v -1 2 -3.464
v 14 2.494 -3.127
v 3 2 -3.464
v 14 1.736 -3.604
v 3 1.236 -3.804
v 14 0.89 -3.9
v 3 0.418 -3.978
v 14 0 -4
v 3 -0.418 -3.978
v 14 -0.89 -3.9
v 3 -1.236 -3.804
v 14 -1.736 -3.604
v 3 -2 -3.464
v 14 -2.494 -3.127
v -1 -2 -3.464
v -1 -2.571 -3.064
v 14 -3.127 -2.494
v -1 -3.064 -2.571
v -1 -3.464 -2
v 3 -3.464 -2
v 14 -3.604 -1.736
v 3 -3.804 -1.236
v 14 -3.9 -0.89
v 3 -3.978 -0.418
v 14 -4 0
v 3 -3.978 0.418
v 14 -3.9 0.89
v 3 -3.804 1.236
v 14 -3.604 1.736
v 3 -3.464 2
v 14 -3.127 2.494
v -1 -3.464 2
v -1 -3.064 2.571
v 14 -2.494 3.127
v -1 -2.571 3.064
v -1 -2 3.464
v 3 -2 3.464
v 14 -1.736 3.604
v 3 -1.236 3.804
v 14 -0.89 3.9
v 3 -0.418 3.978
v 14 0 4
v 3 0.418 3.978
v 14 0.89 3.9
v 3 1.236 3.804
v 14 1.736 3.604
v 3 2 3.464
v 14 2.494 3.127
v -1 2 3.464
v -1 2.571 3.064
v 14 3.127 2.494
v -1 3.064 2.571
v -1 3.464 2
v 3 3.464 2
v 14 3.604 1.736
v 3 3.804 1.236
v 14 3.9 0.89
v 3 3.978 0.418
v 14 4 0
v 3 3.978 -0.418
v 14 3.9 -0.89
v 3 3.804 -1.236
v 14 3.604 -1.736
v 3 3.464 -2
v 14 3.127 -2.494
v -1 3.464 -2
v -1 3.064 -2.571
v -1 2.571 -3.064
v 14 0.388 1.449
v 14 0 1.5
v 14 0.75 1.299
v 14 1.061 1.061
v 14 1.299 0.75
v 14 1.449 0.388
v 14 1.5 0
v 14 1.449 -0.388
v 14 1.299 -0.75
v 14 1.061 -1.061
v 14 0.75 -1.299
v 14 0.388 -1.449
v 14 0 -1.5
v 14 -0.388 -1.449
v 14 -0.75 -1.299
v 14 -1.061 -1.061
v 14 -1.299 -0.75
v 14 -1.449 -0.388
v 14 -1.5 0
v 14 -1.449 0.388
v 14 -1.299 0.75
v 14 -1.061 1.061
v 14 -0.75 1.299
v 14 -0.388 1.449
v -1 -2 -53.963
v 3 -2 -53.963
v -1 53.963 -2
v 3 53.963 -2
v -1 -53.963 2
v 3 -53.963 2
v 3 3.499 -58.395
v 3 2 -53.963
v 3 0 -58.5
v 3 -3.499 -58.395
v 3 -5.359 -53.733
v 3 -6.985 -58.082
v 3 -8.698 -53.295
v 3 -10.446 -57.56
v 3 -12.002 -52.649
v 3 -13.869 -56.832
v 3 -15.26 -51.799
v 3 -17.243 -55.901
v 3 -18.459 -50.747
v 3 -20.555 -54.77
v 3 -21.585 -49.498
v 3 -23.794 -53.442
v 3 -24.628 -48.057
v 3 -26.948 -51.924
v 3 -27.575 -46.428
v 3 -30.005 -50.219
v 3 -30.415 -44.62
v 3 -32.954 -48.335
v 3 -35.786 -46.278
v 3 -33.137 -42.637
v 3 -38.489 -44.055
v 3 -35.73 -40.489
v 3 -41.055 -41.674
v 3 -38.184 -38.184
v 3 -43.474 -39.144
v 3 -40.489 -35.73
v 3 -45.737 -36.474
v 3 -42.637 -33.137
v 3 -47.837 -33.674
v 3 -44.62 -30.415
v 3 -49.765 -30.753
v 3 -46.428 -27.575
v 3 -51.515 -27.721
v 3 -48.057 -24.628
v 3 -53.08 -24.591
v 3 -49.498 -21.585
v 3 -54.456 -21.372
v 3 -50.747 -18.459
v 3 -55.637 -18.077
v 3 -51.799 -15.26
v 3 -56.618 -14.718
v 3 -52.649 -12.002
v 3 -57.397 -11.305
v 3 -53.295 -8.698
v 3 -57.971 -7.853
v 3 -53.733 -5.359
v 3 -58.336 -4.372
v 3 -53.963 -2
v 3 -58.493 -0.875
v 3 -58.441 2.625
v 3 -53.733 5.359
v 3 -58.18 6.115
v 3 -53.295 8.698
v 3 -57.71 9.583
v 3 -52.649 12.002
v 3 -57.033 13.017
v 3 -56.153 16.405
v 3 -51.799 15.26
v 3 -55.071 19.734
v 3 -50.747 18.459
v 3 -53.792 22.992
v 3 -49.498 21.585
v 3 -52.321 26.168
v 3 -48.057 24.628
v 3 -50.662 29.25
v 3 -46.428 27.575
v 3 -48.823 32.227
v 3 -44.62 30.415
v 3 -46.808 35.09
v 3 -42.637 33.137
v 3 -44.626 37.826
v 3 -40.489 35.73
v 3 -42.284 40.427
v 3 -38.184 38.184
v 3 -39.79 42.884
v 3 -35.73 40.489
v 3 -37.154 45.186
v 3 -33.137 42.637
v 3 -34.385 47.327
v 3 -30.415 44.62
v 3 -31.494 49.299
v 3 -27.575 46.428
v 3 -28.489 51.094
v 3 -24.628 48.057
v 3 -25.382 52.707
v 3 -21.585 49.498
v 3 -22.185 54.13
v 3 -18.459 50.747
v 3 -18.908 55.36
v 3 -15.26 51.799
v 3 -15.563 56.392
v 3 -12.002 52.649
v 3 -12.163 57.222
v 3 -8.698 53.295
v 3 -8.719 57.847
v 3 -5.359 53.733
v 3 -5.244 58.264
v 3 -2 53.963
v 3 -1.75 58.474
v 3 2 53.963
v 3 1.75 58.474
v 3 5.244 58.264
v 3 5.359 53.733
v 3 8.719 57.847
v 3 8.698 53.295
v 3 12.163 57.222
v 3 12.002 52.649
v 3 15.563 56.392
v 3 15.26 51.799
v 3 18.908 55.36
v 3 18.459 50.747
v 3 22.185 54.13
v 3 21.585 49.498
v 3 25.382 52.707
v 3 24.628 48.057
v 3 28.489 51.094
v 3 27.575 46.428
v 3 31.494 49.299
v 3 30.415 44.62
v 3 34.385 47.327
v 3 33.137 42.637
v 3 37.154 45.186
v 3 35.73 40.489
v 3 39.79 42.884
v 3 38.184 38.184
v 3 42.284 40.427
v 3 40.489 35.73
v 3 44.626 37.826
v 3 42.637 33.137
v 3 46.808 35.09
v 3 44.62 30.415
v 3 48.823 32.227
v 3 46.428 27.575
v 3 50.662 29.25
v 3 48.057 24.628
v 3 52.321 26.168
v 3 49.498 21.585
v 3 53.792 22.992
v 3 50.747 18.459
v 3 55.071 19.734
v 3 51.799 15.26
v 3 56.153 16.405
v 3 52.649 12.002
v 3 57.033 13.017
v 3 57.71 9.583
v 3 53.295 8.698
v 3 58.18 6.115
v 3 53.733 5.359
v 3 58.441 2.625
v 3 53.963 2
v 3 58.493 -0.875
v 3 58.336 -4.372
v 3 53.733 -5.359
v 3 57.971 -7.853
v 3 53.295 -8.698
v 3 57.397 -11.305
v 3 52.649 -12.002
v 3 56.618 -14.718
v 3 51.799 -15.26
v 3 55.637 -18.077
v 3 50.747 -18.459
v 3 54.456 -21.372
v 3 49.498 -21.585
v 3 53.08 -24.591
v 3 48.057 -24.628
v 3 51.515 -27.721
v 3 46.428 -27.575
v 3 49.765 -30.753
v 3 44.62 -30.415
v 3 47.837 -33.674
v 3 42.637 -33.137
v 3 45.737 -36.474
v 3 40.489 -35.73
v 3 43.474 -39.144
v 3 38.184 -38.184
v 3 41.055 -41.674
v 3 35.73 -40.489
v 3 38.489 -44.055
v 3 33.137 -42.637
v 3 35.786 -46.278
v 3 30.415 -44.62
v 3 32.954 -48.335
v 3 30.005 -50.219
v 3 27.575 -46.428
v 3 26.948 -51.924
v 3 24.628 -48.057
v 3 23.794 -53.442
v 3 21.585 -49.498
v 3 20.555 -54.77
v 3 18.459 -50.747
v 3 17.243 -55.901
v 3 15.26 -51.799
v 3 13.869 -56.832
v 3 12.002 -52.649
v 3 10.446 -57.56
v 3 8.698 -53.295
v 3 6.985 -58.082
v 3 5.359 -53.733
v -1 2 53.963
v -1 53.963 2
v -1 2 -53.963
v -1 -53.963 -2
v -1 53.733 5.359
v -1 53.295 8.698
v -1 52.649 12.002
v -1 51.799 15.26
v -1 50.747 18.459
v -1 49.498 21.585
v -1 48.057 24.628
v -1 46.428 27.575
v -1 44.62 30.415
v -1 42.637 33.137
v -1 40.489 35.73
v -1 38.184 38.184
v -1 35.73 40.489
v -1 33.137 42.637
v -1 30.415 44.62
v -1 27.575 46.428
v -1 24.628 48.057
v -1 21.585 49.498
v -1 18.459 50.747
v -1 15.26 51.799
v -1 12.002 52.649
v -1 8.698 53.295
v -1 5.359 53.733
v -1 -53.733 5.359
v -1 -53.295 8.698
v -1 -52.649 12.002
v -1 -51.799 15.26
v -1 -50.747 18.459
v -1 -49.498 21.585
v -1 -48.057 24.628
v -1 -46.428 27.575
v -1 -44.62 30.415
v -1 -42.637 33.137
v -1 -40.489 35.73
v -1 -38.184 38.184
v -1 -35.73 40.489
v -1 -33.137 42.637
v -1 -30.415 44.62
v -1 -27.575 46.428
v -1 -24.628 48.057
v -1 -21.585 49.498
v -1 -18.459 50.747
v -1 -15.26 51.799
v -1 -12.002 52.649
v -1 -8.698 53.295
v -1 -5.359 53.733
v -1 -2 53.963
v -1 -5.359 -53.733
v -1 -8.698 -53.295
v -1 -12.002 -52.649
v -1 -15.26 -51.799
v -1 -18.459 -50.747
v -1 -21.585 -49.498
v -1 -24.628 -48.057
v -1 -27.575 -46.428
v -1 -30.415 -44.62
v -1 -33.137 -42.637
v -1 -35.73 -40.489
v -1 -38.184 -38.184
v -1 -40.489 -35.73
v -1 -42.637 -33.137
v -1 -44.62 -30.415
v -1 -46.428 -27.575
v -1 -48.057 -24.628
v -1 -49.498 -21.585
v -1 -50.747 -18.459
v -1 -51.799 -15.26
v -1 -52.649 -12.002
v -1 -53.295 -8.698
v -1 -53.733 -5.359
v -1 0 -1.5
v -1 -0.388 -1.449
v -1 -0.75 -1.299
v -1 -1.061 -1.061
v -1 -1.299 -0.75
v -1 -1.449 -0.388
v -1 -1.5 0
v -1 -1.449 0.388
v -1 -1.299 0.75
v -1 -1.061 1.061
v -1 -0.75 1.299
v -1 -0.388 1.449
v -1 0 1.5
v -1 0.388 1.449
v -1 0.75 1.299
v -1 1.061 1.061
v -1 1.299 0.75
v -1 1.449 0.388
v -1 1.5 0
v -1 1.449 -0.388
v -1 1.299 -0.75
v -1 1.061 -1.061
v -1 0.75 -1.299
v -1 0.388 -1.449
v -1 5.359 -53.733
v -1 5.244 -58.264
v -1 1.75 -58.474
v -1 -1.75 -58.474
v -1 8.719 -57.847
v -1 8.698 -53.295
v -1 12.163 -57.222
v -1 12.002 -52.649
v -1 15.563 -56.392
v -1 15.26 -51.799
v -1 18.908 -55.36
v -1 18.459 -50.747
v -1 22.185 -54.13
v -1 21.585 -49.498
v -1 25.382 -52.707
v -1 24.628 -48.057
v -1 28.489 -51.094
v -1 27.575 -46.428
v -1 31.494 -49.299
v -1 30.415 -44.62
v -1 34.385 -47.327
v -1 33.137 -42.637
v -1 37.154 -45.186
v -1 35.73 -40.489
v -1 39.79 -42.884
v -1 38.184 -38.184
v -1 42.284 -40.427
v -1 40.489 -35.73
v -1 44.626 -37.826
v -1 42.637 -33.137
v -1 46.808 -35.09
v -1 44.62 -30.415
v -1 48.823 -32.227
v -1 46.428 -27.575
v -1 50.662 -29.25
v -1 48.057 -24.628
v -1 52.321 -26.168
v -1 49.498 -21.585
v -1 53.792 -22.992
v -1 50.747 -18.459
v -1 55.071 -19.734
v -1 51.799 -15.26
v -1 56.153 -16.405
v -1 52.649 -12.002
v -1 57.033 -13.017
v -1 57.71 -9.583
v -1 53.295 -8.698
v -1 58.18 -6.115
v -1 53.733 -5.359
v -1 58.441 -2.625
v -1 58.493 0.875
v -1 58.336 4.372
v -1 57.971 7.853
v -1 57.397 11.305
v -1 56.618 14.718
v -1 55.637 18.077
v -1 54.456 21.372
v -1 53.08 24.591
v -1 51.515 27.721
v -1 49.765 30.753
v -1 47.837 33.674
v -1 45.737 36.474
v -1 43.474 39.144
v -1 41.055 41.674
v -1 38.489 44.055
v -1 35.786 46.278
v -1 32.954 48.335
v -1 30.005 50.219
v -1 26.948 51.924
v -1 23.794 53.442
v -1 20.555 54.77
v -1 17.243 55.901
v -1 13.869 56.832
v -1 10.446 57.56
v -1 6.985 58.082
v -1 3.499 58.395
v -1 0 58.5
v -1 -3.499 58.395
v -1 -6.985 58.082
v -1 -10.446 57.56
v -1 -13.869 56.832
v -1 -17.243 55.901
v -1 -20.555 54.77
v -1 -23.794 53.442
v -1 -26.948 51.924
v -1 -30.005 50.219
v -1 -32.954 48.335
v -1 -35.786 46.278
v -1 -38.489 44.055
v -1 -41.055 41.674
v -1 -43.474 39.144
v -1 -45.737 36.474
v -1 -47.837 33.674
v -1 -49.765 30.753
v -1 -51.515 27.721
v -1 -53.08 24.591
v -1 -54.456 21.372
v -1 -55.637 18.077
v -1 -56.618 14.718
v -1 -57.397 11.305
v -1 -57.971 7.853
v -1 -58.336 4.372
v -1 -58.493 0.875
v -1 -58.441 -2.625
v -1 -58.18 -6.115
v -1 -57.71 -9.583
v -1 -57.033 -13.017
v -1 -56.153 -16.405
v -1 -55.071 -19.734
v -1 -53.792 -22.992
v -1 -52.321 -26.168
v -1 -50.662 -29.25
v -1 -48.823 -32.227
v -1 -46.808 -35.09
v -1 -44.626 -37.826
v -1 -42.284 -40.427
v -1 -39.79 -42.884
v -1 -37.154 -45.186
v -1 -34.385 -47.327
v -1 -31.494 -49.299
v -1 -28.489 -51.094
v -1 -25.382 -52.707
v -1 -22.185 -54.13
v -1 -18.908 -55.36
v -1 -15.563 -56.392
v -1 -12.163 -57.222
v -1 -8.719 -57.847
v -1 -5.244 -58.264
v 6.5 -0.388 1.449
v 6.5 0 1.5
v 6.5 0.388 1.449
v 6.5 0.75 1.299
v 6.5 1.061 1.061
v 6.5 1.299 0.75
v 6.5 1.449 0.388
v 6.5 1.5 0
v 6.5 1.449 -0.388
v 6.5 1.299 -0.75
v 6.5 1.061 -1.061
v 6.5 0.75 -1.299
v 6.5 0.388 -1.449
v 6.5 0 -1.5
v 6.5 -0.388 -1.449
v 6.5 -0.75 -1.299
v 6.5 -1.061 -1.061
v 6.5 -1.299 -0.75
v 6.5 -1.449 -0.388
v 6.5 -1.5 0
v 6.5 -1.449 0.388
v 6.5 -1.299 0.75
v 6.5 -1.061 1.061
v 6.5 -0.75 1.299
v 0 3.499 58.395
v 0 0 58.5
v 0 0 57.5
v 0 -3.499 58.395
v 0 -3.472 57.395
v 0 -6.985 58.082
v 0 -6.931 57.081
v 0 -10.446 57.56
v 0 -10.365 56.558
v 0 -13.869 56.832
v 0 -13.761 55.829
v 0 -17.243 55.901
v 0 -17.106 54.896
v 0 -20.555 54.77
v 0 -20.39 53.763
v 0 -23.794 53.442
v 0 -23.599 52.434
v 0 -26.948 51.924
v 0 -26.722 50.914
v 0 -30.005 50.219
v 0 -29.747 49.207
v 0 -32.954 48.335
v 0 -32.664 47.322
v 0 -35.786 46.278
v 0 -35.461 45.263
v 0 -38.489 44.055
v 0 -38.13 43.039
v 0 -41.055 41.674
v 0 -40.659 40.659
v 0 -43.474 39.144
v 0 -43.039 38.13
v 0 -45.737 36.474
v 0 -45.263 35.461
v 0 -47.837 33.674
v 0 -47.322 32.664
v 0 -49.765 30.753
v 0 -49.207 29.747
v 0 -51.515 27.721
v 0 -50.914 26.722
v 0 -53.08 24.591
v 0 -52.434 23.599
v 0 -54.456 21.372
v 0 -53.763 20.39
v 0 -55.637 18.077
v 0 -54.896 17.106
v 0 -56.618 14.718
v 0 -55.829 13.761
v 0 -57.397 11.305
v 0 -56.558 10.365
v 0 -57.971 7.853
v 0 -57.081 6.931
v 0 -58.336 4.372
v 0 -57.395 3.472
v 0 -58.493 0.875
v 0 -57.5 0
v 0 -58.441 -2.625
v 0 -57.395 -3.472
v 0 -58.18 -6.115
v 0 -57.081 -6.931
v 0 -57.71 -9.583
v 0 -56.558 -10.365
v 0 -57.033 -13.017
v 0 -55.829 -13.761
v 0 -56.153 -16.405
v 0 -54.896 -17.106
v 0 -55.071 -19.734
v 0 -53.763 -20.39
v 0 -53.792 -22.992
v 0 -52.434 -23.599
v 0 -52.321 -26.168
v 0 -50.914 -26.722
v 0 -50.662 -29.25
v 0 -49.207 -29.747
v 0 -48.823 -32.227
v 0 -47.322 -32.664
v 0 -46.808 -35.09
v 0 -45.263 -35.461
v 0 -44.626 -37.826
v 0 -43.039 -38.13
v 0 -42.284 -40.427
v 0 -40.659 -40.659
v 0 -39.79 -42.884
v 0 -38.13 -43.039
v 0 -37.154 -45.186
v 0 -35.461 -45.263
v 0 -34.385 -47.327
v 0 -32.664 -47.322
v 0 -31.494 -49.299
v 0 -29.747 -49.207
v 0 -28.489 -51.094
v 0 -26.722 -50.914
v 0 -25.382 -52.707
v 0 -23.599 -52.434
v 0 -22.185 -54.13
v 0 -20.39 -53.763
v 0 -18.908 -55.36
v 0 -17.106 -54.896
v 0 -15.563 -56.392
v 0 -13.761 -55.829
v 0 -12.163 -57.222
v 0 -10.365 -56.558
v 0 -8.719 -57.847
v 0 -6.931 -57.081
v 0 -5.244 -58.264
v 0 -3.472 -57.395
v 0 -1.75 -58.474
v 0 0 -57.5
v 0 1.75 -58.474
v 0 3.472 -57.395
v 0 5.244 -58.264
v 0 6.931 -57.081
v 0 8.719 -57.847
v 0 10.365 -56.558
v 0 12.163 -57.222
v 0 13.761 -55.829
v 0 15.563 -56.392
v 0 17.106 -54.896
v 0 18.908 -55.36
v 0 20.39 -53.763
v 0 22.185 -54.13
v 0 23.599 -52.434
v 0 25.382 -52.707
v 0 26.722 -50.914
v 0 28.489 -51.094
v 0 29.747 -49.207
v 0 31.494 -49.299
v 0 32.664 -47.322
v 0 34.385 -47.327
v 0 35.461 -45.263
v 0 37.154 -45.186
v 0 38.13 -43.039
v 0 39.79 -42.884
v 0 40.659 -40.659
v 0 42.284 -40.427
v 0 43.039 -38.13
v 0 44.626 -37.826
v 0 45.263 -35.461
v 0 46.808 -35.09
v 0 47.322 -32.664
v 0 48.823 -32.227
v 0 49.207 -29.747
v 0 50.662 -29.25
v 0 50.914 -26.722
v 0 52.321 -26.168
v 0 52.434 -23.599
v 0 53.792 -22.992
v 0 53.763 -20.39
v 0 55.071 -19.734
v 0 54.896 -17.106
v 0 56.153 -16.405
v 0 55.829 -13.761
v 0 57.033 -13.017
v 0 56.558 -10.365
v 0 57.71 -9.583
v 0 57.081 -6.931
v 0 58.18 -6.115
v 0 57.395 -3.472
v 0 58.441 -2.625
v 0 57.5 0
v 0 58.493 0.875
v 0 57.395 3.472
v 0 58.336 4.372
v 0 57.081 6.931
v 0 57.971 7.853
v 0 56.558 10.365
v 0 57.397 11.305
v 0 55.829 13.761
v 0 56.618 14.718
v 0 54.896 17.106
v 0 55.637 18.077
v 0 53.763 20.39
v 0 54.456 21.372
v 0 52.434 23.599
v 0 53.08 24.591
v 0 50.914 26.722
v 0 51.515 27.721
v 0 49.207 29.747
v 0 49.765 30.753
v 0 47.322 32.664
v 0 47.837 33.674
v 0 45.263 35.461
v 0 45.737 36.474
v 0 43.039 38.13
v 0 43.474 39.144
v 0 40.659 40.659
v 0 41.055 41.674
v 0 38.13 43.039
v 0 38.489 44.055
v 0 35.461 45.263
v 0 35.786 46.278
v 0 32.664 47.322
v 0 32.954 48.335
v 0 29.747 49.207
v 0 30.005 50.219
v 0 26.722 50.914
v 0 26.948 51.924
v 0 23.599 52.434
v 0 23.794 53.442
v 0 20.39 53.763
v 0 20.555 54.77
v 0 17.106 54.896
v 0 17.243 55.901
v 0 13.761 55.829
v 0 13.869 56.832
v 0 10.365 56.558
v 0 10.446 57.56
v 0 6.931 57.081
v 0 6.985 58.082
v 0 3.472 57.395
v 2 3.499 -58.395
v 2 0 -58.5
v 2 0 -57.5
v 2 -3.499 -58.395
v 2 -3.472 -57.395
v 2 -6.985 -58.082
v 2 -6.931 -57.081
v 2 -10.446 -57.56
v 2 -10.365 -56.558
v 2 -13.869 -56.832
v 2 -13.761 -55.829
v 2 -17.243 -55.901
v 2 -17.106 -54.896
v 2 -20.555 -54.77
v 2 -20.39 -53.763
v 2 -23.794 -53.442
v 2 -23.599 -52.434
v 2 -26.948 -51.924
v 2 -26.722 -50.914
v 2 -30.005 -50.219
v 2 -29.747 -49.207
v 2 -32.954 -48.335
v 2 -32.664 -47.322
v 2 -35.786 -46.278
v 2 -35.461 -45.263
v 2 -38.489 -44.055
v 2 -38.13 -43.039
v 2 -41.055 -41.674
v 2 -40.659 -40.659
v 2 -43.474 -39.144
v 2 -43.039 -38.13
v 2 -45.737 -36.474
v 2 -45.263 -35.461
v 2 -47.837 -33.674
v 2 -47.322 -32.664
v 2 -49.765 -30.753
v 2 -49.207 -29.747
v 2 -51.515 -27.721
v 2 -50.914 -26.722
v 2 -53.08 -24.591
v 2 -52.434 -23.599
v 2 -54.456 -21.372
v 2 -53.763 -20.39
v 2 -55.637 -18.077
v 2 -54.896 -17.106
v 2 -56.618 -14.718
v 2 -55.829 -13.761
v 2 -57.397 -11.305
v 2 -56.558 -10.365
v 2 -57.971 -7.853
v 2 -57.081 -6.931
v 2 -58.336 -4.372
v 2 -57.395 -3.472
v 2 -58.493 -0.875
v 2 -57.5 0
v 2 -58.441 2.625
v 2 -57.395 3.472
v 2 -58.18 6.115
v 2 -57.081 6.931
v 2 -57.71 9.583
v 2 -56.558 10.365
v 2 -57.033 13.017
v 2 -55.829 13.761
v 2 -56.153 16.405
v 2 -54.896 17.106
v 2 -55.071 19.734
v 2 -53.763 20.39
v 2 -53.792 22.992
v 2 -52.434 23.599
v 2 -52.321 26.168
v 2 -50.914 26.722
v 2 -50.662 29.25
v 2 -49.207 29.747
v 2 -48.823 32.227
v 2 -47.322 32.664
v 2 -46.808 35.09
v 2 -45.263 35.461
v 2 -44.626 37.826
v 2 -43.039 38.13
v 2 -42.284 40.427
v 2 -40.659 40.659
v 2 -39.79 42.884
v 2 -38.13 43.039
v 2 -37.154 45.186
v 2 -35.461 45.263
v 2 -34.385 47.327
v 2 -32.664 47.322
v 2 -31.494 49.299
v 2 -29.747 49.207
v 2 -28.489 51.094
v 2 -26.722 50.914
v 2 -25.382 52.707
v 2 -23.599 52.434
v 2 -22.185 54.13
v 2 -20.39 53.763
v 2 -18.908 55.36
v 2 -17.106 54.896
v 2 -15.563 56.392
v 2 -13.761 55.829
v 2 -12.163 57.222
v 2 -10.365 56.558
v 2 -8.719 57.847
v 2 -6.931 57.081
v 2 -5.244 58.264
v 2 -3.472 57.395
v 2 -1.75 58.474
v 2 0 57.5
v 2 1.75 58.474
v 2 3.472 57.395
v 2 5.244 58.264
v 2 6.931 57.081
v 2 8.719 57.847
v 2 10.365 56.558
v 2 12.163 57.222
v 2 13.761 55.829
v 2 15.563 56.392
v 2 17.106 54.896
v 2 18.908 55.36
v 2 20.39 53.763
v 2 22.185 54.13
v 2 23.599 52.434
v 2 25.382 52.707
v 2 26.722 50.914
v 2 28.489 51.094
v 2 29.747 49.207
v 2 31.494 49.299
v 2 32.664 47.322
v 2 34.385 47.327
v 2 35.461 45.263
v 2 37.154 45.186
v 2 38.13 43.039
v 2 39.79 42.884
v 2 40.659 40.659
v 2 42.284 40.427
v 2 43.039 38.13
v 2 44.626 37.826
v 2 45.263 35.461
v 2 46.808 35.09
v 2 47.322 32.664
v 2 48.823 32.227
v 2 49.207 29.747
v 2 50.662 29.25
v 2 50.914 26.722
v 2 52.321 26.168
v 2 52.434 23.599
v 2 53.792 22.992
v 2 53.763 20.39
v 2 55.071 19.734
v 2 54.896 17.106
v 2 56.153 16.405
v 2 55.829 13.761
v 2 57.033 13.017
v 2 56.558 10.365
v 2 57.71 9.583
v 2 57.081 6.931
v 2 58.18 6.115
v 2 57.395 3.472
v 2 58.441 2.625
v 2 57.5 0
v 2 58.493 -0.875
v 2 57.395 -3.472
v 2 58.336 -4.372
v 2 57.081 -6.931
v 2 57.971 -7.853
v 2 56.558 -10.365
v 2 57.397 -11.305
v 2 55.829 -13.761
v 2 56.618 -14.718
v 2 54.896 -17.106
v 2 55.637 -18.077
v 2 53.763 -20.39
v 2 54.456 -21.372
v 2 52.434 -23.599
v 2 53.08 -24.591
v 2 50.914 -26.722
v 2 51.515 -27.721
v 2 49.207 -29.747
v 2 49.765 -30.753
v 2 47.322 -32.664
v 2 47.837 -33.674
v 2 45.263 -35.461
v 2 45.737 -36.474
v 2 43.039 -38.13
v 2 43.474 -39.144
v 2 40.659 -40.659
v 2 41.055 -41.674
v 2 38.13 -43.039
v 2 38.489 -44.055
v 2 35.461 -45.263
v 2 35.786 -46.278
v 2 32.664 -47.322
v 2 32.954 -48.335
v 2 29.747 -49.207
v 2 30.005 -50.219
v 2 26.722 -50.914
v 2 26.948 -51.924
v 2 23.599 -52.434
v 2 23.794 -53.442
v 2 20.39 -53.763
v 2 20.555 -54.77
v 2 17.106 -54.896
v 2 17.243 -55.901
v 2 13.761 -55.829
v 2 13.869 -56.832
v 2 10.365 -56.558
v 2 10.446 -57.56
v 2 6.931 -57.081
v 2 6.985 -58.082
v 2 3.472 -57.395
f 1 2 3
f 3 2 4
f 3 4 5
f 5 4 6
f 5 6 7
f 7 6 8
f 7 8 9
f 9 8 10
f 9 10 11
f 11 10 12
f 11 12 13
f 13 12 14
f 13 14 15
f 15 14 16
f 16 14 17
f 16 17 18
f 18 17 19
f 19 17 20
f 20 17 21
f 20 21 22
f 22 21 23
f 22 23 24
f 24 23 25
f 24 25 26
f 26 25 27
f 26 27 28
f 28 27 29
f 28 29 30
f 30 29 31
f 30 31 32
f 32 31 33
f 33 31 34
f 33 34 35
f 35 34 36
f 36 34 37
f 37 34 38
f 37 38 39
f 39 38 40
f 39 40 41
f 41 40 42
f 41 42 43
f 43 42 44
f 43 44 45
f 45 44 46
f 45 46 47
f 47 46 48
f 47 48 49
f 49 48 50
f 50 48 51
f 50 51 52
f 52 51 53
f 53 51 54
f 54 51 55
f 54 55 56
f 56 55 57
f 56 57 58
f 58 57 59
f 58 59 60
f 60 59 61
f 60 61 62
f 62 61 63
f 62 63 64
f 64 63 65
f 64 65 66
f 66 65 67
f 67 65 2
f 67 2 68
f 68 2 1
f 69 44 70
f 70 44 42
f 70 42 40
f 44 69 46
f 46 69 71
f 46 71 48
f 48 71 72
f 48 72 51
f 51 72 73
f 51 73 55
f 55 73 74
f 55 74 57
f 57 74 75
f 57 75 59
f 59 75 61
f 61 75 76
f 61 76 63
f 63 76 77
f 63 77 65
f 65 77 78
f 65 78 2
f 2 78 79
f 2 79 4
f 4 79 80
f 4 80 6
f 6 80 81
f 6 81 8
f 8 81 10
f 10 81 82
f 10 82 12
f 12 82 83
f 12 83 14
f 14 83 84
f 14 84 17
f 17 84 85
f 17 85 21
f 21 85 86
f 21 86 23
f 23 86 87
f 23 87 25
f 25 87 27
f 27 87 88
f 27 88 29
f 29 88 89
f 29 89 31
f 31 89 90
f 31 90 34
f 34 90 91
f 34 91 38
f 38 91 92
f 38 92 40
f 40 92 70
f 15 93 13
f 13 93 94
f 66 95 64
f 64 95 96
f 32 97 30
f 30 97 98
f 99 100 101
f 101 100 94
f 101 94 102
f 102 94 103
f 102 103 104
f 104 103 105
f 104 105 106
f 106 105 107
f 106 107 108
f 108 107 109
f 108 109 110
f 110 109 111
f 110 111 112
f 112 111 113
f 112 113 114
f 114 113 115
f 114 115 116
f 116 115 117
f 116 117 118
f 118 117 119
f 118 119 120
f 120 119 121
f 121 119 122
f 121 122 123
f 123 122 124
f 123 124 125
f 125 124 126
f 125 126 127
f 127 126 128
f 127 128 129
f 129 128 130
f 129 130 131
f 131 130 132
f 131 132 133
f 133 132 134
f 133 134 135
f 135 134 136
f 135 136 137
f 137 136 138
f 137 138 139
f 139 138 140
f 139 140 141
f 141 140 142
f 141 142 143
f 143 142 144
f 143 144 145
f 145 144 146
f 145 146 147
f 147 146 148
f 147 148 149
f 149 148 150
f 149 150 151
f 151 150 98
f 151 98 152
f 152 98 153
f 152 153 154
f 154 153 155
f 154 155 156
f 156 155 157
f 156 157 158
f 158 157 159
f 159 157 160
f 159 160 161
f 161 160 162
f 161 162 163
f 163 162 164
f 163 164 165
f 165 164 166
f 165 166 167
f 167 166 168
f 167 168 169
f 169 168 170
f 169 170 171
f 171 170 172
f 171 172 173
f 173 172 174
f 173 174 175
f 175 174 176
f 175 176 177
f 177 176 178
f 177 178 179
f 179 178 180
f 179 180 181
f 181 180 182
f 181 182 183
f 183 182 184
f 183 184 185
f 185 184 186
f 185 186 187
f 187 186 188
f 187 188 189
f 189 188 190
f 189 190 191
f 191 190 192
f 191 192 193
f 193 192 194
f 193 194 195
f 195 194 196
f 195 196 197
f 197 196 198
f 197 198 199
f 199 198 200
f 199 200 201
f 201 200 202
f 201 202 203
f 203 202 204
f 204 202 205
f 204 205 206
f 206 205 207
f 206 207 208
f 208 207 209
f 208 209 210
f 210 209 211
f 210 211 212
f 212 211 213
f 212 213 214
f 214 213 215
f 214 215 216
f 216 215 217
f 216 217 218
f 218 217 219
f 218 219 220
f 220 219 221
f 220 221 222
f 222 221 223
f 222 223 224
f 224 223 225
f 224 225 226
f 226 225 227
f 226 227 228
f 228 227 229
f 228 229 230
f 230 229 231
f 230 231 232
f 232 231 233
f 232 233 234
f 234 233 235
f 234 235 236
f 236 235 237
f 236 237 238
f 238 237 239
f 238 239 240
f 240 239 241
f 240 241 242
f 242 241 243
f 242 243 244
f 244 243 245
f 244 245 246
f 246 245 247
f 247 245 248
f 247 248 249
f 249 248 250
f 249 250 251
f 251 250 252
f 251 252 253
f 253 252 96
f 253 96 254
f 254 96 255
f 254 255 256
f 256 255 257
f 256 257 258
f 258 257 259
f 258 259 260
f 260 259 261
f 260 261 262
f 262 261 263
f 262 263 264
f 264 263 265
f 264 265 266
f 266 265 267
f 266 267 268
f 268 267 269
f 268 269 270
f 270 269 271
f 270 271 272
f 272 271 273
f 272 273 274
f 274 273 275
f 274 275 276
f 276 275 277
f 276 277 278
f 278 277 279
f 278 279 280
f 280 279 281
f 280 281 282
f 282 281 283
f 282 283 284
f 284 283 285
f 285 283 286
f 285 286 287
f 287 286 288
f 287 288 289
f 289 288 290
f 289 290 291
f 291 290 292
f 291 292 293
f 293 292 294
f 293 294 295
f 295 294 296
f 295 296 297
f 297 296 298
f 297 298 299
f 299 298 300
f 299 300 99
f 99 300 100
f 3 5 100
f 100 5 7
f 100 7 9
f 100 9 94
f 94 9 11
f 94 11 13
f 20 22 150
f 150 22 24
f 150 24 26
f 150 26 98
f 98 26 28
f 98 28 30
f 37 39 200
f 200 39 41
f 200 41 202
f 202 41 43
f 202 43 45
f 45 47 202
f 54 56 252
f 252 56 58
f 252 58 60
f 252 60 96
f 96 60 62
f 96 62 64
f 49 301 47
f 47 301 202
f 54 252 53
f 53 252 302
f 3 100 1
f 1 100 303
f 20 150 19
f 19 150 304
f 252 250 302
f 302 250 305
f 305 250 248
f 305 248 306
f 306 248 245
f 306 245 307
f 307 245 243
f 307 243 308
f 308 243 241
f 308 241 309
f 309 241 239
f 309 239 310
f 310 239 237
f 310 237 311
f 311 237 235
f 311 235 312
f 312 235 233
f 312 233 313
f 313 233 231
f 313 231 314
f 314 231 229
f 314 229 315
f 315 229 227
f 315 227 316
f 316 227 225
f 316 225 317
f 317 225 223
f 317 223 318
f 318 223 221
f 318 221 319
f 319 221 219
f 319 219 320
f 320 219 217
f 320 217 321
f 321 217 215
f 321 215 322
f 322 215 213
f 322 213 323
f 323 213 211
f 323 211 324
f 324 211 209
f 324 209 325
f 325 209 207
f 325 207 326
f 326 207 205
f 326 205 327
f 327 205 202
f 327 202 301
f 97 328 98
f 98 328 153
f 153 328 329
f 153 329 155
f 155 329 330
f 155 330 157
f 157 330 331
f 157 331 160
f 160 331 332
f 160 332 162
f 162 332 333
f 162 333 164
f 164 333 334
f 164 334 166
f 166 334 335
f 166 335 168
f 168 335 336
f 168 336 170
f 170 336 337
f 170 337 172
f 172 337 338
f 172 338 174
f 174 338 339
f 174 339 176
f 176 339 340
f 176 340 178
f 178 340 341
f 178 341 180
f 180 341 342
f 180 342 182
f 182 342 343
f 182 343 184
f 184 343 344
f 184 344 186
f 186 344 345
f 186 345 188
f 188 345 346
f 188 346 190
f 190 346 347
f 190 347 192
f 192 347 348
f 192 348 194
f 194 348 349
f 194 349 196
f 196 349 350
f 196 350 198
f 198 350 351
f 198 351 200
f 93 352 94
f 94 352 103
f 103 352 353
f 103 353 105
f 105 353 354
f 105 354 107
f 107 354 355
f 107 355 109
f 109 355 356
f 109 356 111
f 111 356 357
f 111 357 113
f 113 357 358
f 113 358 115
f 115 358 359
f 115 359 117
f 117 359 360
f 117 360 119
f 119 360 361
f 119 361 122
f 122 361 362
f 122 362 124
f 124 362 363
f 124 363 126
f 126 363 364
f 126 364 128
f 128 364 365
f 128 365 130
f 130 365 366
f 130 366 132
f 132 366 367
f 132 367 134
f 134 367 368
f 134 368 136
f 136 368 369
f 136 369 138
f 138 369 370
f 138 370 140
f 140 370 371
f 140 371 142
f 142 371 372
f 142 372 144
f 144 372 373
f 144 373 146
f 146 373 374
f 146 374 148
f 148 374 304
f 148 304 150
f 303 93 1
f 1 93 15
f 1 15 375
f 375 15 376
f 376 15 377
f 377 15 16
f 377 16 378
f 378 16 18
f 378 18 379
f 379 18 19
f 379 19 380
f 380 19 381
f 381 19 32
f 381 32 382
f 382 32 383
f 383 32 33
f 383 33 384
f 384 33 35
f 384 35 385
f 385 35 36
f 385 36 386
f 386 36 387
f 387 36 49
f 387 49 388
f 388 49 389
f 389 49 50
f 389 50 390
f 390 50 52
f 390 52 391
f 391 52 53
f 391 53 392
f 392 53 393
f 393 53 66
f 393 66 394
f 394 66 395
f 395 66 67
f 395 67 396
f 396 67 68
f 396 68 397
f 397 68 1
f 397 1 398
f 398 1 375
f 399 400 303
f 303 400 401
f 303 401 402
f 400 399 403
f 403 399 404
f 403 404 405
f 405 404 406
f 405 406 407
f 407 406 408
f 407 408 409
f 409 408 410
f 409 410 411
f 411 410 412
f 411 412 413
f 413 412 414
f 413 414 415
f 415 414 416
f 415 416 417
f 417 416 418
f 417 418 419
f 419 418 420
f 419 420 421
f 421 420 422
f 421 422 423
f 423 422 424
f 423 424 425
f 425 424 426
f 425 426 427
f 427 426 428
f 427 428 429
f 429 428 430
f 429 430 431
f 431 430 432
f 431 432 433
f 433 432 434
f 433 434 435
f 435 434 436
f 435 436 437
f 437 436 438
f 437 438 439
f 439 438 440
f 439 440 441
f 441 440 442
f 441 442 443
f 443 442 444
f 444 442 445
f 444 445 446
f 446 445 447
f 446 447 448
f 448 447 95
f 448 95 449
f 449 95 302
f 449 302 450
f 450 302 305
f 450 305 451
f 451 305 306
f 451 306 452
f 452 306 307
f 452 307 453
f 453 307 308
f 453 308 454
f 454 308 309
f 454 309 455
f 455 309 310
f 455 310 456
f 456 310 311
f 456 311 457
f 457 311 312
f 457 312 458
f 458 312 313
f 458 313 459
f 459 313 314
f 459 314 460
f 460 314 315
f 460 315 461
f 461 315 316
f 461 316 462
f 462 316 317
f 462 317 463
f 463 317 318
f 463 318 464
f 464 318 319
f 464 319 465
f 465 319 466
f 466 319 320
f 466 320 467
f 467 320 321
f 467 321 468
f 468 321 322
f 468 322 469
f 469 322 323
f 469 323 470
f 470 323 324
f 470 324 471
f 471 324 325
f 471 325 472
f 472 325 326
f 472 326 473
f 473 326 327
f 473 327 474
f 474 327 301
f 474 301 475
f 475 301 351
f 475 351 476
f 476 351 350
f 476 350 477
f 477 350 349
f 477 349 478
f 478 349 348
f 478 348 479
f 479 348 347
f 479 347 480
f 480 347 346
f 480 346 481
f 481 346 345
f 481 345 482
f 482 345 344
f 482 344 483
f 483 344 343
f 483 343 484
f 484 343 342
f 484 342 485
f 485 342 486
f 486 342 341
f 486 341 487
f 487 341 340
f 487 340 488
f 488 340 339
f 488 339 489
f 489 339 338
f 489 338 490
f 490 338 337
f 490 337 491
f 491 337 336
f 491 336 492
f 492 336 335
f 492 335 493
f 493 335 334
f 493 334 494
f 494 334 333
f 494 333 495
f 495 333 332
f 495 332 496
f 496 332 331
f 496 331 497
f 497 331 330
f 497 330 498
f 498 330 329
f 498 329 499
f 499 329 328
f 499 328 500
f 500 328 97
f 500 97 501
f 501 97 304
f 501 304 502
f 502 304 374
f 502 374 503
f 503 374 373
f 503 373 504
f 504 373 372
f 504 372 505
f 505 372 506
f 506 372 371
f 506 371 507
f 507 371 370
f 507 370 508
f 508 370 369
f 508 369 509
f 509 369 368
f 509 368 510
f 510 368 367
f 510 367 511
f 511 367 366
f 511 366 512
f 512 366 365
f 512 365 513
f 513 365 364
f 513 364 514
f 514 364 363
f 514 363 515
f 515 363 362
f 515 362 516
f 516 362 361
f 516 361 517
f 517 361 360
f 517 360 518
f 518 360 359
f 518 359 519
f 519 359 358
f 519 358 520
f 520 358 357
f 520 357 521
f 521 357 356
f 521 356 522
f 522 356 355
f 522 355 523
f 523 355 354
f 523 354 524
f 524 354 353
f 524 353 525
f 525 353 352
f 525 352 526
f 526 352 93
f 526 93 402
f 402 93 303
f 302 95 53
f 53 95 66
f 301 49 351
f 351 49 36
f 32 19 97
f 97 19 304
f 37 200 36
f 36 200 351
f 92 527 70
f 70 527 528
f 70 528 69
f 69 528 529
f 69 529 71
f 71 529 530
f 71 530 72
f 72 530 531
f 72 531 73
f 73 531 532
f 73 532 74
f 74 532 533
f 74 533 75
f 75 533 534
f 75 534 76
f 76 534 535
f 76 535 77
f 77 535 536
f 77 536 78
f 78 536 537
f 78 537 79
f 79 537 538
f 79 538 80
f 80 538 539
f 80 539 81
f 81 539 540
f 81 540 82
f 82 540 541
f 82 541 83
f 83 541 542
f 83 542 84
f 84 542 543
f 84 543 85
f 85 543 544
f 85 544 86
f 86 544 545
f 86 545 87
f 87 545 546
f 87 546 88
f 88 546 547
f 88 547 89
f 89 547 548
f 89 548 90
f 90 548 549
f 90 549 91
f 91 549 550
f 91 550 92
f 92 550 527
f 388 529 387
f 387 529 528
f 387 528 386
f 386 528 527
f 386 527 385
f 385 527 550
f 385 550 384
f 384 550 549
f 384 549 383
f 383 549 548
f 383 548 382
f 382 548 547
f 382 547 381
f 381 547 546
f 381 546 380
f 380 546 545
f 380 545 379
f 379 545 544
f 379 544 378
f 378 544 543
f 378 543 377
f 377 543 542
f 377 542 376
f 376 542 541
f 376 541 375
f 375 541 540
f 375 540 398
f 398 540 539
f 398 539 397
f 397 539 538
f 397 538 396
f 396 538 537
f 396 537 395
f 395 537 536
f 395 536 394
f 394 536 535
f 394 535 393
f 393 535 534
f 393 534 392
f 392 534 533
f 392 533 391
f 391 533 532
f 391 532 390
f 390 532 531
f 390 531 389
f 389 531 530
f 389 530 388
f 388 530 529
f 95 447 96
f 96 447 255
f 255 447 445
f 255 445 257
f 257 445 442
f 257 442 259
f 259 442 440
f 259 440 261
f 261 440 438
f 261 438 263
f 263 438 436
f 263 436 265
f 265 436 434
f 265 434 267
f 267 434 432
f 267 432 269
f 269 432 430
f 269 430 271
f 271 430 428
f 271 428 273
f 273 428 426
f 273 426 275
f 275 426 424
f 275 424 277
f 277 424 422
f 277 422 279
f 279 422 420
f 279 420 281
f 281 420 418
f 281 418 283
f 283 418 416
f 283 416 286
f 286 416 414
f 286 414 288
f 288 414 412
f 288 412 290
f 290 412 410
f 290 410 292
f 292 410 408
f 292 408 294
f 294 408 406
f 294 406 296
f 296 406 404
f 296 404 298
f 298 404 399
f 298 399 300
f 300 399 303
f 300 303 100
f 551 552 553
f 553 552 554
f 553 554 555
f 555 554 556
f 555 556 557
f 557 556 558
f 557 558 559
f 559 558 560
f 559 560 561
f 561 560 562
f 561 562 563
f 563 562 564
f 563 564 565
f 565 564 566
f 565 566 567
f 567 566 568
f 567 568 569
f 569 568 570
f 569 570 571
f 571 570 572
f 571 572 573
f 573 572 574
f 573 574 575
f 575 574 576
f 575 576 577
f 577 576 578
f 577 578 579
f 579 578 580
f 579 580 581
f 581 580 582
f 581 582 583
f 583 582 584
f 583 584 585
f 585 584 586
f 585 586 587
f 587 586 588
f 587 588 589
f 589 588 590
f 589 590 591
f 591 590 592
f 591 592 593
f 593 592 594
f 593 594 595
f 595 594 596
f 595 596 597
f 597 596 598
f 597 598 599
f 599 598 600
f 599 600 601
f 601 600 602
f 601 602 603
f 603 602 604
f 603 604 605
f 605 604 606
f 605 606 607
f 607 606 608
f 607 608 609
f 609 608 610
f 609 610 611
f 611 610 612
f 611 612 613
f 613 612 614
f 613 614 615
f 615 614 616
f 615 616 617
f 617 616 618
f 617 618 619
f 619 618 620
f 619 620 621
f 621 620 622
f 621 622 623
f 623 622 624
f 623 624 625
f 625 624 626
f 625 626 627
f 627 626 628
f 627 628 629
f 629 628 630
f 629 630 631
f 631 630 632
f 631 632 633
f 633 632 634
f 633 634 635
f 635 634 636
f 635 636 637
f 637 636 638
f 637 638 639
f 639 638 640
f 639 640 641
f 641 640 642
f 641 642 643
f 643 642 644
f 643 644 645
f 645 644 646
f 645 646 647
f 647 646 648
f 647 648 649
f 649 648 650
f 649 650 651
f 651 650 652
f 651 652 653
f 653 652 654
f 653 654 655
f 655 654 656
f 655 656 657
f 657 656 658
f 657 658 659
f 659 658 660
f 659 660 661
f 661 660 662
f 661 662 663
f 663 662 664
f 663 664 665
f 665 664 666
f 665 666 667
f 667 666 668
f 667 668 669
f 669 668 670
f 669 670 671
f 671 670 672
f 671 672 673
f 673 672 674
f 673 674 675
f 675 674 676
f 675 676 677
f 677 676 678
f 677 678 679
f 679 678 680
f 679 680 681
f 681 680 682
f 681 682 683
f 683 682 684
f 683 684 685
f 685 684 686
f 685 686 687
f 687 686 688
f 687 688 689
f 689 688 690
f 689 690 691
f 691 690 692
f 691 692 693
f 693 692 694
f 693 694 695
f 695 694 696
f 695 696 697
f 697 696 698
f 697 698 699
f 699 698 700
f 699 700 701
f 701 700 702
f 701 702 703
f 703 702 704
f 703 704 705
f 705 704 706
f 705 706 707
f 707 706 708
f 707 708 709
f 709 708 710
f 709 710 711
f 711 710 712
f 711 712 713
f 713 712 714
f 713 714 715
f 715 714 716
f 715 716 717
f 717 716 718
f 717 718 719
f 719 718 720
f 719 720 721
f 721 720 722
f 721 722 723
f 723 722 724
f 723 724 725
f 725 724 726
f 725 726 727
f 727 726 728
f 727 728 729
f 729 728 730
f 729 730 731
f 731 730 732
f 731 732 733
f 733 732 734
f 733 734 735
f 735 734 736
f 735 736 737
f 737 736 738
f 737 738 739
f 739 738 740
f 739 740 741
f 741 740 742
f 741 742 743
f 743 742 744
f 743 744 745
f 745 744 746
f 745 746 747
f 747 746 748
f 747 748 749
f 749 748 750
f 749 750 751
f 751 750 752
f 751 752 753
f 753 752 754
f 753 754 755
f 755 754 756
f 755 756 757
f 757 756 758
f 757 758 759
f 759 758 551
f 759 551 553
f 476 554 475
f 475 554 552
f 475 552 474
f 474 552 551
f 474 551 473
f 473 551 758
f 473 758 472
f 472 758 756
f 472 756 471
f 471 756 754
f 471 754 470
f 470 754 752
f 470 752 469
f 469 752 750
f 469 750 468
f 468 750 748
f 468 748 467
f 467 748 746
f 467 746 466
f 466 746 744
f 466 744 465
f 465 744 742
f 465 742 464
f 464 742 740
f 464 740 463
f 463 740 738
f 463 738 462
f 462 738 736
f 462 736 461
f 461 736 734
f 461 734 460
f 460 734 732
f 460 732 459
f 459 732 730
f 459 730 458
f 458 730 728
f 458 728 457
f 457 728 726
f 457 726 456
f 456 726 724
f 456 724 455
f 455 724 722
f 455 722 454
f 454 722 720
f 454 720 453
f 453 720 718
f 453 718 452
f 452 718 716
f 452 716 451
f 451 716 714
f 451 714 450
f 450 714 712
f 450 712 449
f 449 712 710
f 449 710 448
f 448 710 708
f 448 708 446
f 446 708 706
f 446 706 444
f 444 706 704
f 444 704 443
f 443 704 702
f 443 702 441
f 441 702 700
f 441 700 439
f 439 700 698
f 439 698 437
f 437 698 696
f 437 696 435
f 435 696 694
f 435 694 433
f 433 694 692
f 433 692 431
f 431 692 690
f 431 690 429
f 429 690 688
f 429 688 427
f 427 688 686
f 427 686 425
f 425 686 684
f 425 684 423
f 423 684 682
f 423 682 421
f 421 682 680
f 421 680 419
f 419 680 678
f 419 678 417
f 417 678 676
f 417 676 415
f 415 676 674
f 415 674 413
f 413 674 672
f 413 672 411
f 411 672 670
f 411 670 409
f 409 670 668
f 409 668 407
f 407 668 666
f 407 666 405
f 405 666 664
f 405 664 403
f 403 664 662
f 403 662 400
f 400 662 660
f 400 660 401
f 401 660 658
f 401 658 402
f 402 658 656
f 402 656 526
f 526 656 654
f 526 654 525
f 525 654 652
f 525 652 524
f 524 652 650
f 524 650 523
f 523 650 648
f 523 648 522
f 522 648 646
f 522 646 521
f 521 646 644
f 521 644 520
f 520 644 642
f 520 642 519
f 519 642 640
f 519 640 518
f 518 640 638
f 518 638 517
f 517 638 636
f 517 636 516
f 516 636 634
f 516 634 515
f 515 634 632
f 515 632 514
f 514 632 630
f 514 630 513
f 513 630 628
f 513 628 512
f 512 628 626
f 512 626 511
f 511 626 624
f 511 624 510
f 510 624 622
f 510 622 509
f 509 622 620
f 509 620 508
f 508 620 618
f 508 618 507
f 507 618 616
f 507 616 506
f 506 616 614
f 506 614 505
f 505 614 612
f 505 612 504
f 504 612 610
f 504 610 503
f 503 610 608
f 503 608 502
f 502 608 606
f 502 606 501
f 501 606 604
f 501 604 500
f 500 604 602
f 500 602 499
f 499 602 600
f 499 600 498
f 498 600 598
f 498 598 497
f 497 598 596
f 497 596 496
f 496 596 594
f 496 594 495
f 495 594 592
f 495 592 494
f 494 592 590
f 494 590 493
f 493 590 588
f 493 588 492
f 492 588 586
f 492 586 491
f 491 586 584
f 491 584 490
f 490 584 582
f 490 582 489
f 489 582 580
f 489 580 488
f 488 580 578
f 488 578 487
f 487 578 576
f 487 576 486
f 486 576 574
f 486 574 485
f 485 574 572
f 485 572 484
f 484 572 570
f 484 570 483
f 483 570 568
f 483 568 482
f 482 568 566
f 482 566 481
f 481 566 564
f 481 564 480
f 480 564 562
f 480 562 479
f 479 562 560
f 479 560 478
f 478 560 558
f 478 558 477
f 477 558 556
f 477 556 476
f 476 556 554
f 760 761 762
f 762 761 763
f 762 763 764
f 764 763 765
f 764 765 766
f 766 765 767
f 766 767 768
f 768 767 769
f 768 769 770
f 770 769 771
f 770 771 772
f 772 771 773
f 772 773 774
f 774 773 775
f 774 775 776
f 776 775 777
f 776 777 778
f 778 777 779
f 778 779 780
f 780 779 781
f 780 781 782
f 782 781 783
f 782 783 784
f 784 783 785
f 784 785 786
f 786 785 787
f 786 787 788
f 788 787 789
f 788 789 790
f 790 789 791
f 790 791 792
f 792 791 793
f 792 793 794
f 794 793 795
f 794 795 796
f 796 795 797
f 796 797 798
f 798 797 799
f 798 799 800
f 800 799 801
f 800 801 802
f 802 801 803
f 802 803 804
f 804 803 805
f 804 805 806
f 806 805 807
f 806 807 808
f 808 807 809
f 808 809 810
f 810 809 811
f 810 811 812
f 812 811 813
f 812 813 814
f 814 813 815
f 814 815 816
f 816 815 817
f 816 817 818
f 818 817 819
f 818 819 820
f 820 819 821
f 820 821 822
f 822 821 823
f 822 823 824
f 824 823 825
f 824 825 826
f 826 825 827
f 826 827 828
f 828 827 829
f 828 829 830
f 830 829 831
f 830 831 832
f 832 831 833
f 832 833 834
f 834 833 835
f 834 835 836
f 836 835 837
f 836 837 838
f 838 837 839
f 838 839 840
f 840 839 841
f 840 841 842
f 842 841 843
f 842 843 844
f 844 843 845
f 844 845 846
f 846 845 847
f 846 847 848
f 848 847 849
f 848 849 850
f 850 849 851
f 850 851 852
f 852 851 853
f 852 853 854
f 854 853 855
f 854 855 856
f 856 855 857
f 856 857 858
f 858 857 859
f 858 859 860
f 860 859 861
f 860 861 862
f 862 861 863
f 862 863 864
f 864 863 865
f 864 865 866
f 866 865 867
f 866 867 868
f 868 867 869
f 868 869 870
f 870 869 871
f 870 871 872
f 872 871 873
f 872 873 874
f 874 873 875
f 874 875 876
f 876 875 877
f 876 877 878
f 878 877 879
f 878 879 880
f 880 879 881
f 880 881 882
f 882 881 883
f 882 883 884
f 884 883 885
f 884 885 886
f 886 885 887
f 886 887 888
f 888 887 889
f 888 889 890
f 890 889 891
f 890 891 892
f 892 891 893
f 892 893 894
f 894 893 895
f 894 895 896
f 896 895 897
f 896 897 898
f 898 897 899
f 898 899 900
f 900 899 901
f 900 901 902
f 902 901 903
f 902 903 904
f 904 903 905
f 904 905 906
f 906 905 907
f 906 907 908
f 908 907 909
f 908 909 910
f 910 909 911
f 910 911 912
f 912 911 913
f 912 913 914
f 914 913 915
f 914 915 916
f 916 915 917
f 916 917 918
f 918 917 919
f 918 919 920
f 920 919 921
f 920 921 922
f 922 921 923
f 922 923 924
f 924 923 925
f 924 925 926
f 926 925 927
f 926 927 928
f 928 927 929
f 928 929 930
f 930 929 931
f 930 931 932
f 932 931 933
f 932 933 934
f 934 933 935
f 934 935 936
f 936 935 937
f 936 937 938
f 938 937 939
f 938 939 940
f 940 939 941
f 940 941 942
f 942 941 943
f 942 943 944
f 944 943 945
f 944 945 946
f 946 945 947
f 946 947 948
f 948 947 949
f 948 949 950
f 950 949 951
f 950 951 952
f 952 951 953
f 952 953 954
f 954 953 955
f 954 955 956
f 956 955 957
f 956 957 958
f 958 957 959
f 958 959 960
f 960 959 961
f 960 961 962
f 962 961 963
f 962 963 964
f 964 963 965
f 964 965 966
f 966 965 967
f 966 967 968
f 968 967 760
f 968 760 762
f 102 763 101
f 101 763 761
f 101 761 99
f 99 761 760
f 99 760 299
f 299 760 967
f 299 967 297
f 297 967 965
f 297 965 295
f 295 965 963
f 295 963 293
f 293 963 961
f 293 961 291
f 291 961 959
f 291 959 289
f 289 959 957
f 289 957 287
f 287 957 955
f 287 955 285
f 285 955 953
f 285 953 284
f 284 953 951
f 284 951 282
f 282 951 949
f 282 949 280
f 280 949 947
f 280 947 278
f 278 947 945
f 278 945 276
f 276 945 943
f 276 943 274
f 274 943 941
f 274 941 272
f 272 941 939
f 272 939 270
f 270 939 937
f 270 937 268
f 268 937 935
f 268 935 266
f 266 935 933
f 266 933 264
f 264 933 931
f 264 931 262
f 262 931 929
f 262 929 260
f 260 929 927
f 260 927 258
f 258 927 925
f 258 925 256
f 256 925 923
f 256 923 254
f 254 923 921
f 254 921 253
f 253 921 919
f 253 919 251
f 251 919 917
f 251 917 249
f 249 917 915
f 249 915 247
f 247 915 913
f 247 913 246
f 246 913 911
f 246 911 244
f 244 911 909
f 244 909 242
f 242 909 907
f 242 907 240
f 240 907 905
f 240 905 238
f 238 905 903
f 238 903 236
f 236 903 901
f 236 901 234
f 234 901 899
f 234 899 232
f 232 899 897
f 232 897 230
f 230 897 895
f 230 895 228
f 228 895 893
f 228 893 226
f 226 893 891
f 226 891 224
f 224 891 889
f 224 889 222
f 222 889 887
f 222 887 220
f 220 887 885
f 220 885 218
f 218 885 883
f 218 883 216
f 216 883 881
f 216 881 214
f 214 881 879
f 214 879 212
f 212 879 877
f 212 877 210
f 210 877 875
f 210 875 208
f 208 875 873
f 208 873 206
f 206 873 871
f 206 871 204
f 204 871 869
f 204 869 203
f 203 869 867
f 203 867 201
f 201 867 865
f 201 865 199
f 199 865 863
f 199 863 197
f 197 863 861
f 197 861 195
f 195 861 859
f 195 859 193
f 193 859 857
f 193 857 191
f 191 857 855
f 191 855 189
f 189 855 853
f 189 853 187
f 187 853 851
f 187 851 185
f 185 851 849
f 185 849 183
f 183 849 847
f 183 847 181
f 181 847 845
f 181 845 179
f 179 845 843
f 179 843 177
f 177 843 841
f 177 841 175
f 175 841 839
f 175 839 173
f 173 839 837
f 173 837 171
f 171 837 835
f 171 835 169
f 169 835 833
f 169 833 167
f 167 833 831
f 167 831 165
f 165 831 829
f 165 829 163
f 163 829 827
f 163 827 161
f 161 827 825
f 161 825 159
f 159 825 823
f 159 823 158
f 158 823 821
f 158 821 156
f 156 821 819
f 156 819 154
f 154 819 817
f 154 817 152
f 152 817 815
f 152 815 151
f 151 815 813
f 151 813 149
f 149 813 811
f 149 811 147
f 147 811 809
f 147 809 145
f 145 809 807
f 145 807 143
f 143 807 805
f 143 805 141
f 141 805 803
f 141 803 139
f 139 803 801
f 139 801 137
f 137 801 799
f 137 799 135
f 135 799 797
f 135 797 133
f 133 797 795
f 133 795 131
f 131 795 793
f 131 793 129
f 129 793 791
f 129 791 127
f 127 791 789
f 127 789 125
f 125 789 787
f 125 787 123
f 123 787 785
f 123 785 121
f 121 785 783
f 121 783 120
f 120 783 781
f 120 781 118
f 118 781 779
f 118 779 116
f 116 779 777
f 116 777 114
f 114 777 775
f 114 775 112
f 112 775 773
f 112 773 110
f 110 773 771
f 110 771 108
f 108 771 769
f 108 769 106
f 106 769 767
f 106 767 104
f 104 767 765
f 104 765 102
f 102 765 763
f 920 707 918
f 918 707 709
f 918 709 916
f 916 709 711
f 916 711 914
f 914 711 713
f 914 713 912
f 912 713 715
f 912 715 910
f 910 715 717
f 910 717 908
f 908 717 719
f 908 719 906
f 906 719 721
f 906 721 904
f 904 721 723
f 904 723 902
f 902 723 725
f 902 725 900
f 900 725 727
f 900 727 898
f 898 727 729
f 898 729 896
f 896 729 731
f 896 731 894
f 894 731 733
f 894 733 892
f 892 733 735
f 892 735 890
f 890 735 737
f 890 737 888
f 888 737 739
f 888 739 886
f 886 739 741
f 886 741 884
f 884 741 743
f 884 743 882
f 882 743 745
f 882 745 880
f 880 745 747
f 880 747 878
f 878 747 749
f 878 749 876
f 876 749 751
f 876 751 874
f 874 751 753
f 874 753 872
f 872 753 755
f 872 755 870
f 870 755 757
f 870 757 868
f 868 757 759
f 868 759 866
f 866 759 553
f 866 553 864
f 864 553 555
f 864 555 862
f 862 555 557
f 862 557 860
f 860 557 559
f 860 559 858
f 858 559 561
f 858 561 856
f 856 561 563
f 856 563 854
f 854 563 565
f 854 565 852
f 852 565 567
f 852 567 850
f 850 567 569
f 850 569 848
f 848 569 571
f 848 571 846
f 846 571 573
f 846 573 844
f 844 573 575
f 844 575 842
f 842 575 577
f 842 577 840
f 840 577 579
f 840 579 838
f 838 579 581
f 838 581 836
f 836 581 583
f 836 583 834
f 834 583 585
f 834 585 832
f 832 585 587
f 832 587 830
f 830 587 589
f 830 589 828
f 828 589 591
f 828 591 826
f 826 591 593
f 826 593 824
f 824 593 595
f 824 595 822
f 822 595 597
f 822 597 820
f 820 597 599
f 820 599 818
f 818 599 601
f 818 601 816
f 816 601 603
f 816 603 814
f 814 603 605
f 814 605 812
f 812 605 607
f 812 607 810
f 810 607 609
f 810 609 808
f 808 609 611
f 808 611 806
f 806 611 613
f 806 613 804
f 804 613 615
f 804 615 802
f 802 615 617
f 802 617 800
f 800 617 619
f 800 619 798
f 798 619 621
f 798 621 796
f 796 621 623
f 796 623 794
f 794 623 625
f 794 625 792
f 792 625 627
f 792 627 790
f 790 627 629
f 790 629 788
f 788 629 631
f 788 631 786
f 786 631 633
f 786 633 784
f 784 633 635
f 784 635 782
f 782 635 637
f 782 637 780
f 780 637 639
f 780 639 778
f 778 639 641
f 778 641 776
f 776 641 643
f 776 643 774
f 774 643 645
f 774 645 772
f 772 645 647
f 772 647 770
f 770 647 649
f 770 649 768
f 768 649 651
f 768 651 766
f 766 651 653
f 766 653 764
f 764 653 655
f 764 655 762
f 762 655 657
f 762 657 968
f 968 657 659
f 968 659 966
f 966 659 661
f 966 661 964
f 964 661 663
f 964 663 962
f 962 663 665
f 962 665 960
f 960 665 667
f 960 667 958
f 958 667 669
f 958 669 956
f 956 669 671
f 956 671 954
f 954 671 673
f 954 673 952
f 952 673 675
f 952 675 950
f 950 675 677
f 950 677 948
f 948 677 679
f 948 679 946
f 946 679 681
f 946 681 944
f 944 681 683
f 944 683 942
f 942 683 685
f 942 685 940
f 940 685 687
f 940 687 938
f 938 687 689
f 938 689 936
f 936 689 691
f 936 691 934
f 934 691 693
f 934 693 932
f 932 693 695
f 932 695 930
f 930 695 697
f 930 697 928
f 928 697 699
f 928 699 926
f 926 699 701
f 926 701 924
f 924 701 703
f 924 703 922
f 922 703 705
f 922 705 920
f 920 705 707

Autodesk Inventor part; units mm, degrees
ref_plane "YZ Plane" through (0, 0, 0) normal (1, 0, 0) x (0, 1, 0)
ref_plane "XZ Plane" through (0, 0, 0) normal (0, 1, 0) x (-1, 0, 0)
ref_plane "XY Plane" through (0, 0, 0) normal (0, 0, 1) x (1, 0, 0)
sketch "Sketch1" plane through (0, 0, 0) normal (1, 0, 0) x (0, 1, 0)
  circle A0 centre (0, 0) radius 57.5
  dimension "d0" = 115
extrude "Extrusion1" add sketch "Sketch1" along normal blind 2
sketch "Sketch2" plane through (2, 0, 0) normal (1, 0, 0) x (0, 0, -1)
  circle A0 centre (0, 0) radius 58.5
  dimension "d3" = 117
extrude "Extrusion2" add sketch "Sketch2" along normal blind 1
sketch "Sketch3" plane through (0, 0, 0) normal (-1, 0, 0) x (0, 0, 1)
  circle A0 centre (0, 0) radius 58.5
extrude "Extrusion3" add sketch "Sketch3" along normal blind 1
sketch "Sketch4" plane through (-1, 0, 0) normal (-1, 0, 0) x (0, 0, 1)
  circle A0 centre (0, 0) radius 54
  dimension "d8" = 108
extrude "Extrusion4" cut sketch "Sketch4" against normal blind 5
sketch "Sketch5" plane through (-1, 0, 0) normal (-1, 0, 0) x (0, 0, 1)
  circle A0 centre (0, 0) radius 1.5
  circle A1 centre (0, 0) radius 3.5
  dimension "d11" = 3
  dimension "d12" = 7
extrude "Extrusion5" add sketch "Sketch5" against normal blind 5
sketch "Sketch6" plane through (-1, 0, 0) normal (-1, 0, 0) x (0, 0, 1)
  line L0 (2.7345, 0) -> (2.7345, 2) construction
  line L1 (2.7345, 2) -> (2.7345, -2) construction
  line L2 (2.7345, -2) -> (54.8201, -2)
  line L3 (54.8201, -2) -> (54.8201, 2)
  line L4 (54.8201, 2) -> (2.7345, 2)
  line L5 (2.7345, 2) -> (2.7345, -2)
  point P0 (0, 0)
  dimension "d15" = 2
  dimension "d16" = 4
extrude "Extrusion6" add sketch "Sketch6" against normal blind 4
pattern_circular "Circular Pattern1" count 4 over 360 about axis through (-1, 0, 0) along (1, 0, 0) of "Extrusion6"
sketch "Sketch7" plane through (-1, 0, 0) normal (-1, 0, 0) x (0, 0, 1)
  circle A0 centre (0, 0) radius 1.5
  circle A1 centre (0, 0) radius 4
  dimension "d22" = 8
extrude "Extrusion7" add sketch "Sketch7" against normal blind 15
sketch "Sketch8" plane through (14, 0, 0) normal (1, 0, 0) x (0, 0, -1)
  circle A0 centre (0, 0) radius 1.625
  dimension "d25" = 3.25
extrude "Extrusion8" cut sketch "Sketch8" against normal blind 100
properties part number "mtv_pushingWheel_1-13"
